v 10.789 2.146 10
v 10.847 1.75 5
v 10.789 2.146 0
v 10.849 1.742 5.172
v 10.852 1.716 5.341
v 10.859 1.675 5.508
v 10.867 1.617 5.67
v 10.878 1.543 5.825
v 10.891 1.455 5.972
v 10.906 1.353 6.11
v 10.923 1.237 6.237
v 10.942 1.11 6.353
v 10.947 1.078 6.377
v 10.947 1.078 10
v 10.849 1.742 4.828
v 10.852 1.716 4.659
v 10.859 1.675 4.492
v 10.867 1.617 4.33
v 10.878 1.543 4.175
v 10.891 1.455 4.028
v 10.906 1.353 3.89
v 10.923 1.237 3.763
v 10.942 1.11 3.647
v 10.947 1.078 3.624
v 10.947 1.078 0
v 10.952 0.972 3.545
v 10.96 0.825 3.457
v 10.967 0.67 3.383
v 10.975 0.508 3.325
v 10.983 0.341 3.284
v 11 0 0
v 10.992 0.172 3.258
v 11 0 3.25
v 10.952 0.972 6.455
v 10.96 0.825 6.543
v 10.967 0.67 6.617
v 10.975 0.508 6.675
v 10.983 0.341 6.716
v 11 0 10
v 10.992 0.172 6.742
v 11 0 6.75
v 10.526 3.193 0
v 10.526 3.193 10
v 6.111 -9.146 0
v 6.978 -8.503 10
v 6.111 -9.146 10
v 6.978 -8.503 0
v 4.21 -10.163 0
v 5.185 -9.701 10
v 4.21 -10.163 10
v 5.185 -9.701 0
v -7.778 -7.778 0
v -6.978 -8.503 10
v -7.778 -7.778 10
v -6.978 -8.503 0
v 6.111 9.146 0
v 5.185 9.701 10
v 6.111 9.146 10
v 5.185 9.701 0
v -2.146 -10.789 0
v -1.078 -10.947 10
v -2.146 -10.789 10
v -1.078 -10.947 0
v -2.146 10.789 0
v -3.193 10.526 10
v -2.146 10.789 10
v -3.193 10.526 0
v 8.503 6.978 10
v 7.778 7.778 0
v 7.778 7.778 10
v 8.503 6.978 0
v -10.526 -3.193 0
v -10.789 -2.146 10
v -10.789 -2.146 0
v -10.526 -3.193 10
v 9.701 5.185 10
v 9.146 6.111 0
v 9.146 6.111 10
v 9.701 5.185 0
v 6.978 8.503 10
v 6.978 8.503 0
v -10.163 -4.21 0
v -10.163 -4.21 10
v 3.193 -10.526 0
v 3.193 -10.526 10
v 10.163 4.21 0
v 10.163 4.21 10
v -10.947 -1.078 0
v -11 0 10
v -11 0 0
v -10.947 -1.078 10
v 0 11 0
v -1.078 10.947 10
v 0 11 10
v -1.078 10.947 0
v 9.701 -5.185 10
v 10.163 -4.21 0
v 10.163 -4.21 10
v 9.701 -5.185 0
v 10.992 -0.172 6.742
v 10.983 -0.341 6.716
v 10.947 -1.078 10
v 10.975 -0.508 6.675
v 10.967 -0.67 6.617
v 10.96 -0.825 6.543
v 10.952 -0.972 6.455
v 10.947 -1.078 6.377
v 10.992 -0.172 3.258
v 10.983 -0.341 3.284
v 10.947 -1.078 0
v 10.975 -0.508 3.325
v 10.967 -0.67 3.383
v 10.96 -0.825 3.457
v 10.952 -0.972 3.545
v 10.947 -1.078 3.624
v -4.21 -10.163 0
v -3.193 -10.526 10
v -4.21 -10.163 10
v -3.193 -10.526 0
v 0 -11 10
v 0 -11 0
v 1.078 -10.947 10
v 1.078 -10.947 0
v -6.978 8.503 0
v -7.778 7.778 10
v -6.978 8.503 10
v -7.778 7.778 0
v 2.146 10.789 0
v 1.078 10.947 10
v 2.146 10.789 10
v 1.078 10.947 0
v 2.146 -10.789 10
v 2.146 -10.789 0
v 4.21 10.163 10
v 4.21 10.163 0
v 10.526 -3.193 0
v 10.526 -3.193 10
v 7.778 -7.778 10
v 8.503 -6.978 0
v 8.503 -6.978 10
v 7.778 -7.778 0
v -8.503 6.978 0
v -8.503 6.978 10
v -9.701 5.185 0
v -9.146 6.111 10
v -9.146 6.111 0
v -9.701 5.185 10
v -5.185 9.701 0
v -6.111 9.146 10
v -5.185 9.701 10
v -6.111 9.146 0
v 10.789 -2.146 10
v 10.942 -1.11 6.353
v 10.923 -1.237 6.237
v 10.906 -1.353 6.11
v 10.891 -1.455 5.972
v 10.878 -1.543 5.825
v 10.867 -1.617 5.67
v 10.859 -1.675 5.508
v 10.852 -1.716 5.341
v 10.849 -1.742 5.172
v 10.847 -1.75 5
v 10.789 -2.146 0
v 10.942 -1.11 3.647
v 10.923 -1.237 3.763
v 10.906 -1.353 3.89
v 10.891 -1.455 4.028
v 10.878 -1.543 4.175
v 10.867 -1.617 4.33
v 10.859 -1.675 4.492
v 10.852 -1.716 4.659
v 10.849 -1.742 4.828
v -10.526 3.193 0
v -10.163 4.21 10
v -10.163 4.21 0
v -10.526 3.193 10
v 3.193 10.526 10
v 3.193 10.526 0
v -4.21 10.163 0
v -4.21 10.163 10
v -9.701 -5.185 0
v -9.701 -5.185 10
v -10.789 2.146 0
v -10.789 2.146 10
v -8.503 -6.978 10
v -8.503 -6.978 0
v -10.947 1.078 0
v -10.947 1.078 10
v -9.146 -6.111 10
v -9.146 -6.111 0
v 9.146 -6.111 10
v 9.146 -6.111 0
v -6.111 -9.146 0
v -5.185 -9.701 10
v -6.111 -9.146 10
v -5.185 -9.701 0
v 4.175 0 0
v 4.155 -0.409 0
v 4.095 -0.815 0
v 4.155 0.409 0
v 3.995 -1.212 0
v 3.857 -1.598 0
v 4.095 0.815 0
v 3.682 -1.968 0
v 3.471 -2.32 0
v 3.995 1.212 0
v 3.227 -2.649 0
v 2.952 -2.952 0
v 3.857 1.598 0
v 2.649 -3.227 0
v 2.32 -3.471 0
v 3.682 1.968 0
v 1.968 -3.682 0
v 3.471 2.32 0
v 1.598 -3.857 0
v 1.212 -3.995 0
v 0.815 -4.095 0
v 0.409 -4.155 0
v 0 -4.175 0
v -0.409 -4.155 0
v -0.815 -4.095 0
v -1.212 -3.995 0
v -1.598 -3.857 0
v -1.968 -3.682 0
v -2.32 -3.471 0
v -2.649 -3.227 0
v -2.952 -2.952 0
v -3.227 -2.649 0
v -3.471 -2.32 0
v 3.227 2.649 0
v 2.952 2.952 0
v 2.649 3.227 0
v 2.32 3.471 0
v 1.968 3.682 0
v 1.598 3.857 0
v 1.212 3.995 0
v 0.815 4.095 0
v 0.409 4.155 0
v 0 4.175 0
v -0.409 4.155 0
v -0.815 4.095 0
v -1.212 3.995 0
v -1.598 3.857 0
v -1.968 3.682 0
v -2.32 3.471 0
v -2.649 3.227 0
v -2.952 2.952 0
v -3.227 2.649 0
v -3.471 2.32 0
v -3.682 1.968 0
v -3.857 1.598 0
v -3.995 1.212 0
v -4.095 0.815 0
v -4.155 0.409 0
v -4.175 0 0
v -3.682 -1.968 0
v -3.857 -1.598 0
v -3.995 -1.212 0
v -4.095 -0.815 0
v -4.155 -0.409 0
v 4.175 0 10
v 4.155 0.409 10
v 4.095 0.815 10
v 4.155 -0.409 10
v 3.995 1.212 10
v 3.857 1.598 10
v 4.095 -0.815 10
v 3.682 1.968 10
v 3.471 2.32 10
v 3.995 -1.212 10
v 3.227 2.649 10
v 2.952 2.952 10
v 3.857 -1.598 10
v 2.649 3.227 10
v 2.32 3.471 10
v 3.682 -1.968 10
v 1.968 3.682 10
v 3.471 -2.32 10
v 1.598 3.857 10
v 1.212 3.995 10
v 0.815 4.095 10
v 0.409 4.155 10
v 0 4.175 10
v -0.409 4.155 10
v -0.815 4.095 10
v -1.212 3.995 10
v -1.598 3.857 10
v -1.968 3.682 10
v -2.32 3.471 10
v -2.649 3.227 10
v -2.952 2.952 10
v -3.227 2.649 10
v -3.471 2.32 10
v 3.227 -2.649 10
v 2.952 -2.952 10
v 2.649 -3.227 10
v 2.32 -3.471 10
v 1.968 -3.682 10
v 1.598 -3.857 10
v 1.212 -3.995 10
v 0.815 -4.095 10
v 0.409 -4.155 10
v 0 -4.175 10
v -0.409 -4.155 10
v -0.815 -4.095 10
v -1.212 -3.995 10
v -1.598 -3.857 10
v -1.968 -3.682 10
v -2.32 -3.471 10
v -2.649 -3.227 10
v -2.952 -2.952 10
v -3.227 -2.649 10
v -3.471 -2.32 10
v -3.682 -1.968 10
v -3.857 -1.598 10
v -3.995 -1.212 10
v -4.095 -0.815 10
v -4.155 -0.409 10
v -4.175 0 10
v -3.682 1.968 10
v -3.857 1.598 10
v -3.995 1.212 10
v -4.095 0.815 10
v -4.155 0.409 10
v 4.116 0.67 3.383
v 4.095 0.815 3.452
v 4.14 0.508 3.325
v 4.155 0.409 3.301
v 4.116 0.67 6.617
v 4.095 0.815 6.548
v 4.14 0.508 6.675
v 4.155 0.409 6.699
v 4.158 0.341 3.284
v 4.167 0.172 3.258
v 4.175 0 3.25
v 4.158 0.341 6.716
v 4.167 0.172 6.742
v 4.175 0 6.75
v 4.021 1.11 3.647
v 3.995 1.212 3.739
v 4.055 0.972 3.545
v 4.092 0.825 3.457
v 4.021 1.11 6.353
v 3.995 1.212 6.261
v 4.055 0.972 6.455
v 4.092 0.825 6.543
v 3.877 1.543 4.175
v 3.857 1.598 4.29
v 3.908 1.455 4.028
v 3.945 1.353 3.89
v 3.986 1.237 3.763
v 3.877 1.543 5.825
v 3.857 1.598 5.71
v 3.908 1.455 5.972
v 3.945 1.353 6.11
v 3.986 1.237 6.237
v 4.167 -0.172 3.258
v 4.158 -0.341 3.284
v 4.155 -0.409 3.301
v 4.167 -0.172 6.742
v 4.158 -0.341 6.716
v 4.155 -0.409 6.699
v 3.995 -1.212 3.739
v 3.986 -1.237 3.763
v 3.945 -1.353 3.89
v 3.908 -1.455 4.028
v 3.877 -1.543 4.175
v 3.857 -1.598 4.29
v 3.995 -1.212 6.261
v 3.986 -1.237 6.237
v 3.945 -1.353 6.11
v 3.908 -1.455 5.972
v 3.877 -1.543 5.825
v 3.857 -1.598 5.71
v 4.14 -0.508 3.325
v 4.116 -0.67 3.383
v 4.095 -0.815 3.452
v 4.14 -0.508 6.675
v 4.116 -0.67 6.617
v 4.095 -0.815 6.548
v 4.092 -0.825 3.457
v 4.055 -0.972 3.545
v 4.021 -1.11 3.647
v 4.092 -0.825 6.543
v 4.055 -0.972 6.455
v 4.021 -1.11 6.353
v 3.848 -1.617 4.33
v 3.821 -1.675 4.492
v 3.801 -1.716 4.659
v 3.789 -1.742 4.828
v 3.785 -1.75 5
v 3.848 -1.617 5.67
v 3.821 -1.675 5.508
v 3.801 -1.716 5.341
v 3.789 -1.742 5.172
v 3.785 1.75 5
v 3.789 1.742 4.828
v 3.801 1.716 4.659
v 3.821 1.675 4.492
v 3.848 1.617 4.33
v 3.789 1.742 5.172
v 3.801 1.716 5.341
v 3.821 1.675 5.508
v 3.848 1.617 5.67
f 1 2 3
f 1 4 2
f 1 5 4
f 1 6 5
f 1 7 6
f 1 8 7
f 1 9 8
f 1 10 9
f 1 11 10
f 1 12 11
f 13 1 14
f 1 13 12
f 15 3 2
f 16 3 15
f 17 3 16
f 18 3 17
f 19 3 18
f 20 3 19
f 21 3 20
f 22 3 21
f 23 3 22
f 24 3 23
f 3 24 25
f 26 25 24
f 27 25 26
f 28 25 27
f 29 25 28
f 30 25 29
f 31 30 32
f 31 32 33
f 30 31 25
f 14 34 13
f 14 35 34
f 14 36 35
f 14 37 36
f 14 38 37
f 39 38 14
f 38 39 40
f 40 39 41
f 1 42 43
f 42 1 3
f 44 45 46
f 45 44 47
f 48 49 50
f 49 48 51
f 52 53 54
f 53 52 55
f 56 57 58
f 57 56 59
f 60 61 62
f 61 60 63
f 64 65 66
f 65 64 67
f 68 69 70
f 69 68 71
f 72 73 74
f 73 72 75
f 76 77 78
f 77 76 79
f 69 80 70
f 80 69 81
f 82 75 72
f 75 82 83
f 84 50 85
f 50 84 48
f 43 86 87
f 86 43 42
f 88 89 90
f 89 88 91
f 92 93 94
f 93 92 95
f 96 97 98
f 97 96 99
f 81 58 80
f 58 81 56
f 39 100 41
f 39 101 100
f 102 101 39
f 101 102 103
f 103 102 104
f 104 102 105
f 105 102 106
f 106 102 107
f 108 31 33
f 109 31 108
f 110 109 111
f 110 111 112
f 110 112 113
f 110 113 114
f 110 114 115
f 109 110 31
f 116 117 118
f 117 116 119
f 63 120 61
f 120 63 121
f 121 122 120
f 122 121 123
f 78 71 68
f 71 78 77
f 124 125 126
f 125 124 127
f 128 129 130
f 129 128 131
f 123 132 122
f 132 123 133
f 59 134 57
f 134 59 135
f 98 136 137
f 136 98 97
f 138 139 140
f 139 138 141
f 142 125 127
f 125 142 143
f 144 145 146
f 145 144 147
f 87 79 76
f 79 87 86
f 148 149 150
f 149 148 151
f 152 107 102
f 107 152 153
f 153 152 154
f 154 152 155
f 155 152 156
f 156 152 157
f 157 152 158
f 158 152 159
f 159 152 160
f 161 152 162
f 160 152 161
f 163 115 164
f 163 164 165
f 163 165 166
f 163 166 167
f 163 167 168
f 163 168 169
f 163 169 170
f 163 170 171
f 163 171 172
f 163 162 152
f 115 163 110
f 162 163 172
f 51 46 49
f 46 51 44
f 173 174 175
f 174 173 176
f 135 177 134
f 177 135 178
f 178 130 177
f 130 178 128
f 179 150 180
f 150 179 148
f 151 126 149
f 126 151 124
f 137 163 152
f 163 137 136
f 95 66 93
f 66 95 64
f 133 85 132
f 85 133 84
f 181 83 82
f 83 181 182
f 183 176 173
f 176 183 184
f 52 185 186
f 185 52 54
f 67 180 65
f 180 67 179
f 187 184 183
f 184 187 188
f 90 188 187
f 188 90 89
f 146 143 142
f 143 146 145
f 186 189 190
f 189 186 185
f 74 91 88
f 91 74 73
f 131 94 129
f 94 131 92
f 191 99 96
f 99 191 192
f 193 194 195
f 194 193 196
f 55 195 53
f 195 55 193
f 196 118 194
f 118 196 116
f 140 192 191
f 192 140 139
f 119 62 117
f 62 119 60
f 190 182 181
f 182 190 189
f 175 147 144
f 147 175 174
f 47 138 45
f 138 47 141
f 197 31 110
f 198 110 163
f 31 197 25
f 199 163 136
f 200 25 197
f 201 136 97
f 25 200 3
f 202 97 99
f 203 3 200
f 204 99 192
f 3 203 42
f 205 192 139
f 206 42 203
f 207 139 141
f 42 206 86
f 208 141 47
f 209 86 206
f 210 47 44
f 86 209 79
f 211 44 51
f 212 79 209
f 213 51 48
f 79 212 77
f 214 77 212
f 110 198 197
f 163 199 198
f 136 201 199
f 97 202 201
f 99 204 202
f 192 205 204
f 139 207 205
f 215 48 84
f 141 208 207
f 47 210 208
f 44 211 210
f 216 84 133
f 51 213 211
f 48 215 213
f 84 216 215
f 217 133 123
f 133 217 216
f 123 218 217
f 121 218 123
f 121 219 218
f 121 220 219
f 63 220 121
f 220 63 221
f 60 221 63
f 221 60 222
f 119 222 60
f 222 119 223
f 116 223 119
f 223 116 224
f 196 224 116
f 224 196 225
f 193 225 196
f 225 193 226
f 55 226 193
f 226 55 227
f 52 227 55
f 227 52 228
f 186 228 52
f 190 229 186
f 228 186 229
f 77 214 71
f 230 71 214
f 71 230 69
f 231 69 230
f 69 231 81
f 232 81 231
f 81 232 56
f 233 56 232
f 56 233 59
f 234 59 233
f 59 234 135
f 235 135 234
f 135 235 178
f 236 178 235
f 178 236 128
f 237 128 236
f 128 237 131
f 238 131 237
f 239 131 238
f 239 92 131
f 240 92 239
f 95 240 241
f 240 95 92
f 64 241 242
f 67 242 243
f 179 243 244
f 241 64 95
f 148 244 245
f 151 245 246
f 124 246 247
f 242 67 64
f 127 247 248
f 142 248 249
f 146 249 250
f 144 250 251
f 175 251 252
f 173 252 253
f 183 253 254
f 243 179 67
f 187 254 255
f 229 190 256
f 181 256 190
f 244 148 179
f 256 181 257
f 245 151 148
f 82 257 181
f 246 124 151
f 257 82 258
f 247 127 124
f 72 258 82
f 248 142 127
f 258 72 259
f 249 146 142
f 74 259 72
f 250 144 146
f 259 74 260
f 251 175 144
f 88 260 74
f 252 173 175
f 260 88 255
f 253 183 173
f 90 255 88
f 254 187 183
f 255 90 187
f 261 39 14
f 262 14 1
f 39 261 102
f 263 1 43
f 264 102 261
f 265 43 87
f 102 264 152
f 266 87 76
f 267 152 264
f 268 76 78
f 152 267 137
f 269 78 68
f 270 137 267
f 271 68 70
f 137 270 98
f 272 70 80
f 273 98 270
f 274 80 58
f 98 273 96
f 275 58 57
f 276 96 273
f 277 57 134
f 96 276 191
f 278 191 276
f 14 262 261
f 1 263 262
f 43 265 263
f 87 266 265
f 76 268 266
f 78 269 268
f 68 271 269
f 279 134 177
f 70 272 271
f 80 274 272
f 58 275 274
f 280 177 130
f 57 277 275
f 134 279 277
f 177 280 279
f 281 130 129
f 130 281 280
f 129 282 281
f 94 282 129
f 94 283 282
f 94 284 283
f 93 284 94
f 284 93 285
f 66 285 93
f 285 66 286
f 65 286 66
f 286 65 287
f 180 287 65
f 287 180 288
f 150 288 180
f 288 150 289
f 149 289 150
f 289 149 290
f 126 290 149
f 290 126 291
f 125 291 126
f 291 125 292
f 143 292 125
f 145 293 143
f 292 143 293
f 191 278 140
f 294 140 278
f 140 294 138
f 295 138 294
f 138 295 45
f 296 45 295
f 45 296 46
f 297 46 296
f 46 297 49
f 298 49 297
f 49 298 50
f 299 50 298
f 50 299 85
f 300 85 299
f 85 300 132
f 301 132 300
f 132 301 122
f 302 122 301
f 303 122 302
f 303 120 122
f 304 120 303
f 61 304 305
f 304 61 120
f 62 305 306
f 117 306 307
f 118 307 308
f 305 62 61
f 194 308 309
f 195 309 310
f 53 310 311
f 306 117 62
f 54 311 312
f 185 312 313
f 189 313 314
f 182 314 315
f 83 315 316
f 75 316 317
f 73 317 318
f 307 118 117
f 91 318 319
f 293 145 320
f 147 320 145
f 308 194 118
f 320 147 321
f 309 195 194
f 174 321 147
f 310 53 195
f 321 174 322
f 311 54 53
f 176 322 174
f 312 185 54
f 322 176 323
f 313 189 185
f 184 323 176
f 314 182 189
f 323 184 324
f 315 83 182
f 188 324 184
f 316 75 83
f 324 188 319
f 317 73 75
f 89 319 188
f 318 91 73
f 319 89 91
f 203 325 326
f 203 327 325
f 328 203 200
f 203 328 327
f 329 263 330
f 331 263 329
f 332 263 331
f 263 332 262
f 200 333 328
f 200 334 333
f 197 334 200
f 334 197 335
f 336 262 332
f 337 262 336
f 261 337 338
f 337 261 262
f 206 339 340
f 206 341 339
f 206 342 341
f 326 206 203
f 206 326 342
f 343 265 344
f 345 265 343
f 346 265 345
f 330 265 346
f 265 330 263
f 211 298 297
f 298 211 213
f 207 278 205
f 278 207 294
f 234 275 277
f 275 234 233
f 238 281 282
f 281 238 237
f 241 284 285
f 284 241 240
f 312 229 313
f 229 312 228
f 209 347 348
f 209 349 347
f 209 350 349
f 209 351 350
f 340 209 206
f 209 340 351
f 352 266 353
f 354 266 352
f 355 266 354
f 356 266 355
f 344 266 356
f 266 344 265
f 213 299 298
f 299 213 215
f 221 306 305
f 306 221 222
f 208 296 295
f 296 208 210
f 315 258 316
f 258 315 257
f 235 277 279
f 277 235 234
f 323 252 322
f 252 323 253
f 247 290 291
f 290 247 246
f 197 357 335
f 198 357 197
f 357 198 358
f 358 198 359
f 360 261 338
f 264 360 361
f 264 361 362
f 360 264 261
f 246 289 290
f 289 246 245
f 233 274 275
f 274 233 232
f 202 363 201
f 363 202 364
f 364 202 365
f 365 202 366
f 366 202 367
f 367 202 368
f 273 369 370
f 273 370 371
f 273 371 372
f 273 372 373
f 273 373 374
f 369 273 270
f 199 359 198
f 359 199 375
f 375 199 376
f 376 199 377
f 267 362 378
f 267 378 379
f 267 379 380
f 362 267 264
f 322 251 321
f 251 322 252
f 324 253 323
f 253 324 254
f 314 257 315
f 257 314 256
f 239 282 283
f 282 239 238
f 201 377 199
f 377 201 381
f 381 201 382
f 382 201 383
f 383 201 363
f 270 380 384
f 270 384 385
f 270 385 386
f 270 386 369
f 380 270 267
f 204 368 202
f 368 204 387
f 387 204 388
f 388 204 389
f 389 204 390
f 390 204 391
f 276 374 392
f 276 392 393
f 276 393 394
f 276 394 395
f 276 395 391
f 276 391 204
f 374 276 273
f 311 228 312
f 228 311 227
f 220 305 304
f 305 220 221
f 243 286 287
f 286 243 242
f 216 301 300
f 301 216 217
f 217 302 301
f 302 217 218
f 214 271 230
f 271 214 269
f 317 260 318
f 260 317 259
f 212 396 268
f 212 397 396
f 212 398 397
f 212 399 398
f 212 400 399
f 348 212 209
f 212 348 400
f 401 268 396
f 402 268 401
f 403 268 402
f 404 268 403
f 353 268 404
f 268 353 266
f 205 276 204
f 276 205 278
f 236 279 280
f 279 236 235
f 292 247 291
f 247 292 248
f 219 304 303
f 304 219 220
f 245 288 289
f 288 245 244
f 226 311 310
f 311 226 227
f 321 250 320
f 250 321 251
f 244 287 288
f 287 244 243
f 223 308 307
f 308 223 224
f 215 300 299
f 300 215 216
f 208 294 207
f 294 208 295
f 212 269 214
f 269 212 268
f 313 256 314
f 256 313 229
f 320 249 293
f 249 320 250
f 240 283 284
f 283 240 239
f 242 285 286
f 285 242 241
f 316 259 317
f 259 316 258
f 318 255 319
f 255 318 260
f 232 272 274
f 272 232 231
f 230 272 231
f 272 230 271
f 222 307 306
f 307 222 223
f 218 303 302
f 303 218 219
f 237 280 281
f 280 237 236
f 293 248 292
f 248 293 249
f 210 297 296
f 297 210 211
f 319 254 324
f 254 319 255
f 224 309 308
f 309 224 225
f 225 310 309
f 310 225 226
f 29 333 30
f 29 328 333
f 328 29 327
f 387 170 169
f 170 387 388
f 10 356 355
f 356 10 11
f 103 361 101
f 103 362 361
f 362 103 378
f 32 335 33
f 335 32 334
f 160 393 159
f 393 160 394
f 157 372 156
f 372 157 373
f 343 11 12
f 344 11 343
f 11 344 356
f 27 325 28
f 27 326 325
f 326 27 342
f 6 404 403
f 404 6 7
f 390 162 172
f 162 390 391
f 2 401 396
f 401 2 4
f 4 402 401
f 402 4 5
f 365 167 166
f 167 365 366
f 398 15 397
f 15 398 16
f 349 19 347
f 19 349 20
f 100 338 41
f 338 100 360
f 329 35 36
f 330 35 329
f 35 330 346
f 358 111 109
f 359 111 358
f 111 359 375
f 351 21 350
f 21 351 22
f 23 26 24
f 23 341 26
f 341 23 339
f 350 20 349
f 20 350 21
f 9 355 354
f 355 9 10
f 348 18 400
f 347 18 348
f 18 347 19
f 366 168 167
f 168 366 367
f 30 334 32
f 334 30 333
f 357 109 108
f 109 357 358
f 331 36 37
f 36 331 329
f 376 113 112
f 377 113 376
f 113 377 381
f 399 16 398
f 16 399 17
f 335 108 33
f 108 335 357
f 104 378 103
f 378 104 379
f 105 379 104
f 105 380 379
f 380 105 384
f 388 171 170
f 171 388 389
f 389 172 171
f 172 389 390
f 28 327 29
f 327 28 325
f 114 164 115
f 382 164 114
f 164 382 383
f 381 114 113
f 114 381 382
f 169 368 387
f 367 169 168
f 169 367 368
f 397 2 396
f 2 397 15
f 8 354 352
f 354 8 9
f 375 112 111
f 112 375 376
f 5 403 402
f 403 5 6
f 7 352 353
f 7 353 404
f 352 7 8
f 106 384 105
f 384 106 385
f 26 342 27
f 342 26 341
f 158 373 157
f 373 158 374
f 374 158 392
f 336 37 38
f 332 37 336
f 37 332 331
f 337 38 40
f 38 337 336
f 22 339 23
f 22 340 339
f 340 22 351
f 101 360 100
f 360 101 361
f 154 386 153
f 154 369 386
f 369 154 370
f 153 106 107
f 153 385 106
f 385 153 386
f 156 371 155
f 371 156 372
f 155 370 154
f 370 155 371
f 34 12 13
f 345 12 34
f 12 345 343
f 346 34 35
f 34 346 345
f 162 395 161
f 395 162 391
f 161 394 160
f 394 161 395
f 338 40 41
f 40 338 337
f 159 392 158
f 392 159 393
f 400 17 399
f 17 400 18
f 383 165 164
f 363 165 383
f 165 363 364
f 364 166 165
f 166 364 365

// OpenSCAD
// file: parameters.scad
// =============================================================================
// Gen-AE Dual-rotor HYPER-MICRO copper-max AFPM — WOUND-AWARE (HARD GATE)
// PRIMARY challenger vs Gen-AE. Thinner m2m 5.00 + 170 t + larger window.
// =============================================================================

// --- Wire / wind budget (26 AWG, ~1 lb spool ≈ 390 m bare-equiv) --------------
wire_awg            = 26;
wire_od             = 0.45;     // insulated OD mm
turns               = 170;      // +10 vs Gen-AE 160
fill                = 0.70;
layers_per_face     = 2;        // axial layers proud of EACH flange
wind_build_axial    = layers_per_face * wire_od * fill;   // 0.63 mm
wind_build_radial   = 3 * wire_od * fill;                 // 0.945 mm

// --- Pancake former (bare STL) — thinner web than Gen-AE ---------------------
coil_id_r           = 18.5;     // larger copper window vs Gen-AE 20–62
coil_od_r           = 64.0;
span_deg            = 26.0;     // 12 stations × 30° pitch
former_web          = 1.50;     // print-safe min (thinner than AB 1.6)
flange_t            = 0.60;     // print-safe min (≥0.6)
wall                = 1.2;
slot_w              = 2.4;
mount_hole          = 3.5;
tab_len             = 7.0;

former_bare_h       = former_web + 2 * flange_t;            // 2.70 mm
coil_envelope_h     = former_bare_h + 2 * wind_build_axial; // 3.96 mm

// --- Running clearance (magnet face → WOUND face) EACH side ------------------
run_clear           = 0.52;     // PASS ≥ 0.5 (hyper-micro band)
gap_spacer_h        = run_clear + wind_build_axial;         // 1.15 mm
m2m                 = coil_envelope_h + 2 * run_clear;      // 5.00 mm (beats Gen-AE 5.22)

// --- Mid stator (12 pancakes 3φ; winds proud both faces) ---------------------
coil_stations       = 12;
bay_r_in            = coil_id_r - 2.0 - wind_build_radial;
bay_r_out           = coil_od_r + 2.0 + wind_build_radial;
bay_span            = span_deg + 4.0;
bay_offset          = 2.0;
stator_thick        = former_bare_h;                        // winds proud ±Z
stator_od           = 160.0;    // bumped with carrier_od 156
shaft_clear_stator  = 36.0;
coil_mount_r        = 28.0;

// --- Rotors (×2) — 8×Ø20 + 24×Ø5 Halbach each face ---------------------------
large_pocket_d      = 20.3;
small_pocket_d      = 5.3;
pocket_h            = 5.2;
large_n             = 8;
R_large             = 54.0;
R_small_inner       = 42.0;
R_small_mid         = 54.0;
R_small_outer       = 66.0;
carrier_od          = 156.0;
carrier_thick       = 7.5;
hub_h               = 10.0;
hub_od              = 30.0;
rotor_b_offset_deg  = 22.5;

// --- Modular MAX interface (Gen-E family) ------------------------------------
shaft_bore          = 8.35;
bearing_d           = 21.85;
bearing_h           = 7.2;
m3_clear            = 3.5;
bolt_r_inner        = 36.0;
bolt_n_inner        = 6;
flange_bolt_r       = 72.0;
flange_bolt_n       = 6;
brace_r             = 68.0;
brace_d             = 4.3;
brace_n             = 4;

spacer_pad_od       = 14.0;
spacer_pad_id       = m3_clear;
endbell_od          = 160.0;
endbell_thick       = 8.0;
endbell_shaft_clear = 10.0;

$fn = 64;
// main file
// Gen-AE shaft collar — print ×2–4
include <parameters.scad>;
$fn = 64;
od = 22; id = shaft_bore; h = 10; set_d = 3.5;
difference() {
    cylinder(d=od, h=h);
    translate([0, 0, -0.1]) cylinder(d=id, h=h + 0.2);
    translate([0, 0, h/2]) rotate([0, 90, 0]) cylinder(d=set_d, h=od);
}
